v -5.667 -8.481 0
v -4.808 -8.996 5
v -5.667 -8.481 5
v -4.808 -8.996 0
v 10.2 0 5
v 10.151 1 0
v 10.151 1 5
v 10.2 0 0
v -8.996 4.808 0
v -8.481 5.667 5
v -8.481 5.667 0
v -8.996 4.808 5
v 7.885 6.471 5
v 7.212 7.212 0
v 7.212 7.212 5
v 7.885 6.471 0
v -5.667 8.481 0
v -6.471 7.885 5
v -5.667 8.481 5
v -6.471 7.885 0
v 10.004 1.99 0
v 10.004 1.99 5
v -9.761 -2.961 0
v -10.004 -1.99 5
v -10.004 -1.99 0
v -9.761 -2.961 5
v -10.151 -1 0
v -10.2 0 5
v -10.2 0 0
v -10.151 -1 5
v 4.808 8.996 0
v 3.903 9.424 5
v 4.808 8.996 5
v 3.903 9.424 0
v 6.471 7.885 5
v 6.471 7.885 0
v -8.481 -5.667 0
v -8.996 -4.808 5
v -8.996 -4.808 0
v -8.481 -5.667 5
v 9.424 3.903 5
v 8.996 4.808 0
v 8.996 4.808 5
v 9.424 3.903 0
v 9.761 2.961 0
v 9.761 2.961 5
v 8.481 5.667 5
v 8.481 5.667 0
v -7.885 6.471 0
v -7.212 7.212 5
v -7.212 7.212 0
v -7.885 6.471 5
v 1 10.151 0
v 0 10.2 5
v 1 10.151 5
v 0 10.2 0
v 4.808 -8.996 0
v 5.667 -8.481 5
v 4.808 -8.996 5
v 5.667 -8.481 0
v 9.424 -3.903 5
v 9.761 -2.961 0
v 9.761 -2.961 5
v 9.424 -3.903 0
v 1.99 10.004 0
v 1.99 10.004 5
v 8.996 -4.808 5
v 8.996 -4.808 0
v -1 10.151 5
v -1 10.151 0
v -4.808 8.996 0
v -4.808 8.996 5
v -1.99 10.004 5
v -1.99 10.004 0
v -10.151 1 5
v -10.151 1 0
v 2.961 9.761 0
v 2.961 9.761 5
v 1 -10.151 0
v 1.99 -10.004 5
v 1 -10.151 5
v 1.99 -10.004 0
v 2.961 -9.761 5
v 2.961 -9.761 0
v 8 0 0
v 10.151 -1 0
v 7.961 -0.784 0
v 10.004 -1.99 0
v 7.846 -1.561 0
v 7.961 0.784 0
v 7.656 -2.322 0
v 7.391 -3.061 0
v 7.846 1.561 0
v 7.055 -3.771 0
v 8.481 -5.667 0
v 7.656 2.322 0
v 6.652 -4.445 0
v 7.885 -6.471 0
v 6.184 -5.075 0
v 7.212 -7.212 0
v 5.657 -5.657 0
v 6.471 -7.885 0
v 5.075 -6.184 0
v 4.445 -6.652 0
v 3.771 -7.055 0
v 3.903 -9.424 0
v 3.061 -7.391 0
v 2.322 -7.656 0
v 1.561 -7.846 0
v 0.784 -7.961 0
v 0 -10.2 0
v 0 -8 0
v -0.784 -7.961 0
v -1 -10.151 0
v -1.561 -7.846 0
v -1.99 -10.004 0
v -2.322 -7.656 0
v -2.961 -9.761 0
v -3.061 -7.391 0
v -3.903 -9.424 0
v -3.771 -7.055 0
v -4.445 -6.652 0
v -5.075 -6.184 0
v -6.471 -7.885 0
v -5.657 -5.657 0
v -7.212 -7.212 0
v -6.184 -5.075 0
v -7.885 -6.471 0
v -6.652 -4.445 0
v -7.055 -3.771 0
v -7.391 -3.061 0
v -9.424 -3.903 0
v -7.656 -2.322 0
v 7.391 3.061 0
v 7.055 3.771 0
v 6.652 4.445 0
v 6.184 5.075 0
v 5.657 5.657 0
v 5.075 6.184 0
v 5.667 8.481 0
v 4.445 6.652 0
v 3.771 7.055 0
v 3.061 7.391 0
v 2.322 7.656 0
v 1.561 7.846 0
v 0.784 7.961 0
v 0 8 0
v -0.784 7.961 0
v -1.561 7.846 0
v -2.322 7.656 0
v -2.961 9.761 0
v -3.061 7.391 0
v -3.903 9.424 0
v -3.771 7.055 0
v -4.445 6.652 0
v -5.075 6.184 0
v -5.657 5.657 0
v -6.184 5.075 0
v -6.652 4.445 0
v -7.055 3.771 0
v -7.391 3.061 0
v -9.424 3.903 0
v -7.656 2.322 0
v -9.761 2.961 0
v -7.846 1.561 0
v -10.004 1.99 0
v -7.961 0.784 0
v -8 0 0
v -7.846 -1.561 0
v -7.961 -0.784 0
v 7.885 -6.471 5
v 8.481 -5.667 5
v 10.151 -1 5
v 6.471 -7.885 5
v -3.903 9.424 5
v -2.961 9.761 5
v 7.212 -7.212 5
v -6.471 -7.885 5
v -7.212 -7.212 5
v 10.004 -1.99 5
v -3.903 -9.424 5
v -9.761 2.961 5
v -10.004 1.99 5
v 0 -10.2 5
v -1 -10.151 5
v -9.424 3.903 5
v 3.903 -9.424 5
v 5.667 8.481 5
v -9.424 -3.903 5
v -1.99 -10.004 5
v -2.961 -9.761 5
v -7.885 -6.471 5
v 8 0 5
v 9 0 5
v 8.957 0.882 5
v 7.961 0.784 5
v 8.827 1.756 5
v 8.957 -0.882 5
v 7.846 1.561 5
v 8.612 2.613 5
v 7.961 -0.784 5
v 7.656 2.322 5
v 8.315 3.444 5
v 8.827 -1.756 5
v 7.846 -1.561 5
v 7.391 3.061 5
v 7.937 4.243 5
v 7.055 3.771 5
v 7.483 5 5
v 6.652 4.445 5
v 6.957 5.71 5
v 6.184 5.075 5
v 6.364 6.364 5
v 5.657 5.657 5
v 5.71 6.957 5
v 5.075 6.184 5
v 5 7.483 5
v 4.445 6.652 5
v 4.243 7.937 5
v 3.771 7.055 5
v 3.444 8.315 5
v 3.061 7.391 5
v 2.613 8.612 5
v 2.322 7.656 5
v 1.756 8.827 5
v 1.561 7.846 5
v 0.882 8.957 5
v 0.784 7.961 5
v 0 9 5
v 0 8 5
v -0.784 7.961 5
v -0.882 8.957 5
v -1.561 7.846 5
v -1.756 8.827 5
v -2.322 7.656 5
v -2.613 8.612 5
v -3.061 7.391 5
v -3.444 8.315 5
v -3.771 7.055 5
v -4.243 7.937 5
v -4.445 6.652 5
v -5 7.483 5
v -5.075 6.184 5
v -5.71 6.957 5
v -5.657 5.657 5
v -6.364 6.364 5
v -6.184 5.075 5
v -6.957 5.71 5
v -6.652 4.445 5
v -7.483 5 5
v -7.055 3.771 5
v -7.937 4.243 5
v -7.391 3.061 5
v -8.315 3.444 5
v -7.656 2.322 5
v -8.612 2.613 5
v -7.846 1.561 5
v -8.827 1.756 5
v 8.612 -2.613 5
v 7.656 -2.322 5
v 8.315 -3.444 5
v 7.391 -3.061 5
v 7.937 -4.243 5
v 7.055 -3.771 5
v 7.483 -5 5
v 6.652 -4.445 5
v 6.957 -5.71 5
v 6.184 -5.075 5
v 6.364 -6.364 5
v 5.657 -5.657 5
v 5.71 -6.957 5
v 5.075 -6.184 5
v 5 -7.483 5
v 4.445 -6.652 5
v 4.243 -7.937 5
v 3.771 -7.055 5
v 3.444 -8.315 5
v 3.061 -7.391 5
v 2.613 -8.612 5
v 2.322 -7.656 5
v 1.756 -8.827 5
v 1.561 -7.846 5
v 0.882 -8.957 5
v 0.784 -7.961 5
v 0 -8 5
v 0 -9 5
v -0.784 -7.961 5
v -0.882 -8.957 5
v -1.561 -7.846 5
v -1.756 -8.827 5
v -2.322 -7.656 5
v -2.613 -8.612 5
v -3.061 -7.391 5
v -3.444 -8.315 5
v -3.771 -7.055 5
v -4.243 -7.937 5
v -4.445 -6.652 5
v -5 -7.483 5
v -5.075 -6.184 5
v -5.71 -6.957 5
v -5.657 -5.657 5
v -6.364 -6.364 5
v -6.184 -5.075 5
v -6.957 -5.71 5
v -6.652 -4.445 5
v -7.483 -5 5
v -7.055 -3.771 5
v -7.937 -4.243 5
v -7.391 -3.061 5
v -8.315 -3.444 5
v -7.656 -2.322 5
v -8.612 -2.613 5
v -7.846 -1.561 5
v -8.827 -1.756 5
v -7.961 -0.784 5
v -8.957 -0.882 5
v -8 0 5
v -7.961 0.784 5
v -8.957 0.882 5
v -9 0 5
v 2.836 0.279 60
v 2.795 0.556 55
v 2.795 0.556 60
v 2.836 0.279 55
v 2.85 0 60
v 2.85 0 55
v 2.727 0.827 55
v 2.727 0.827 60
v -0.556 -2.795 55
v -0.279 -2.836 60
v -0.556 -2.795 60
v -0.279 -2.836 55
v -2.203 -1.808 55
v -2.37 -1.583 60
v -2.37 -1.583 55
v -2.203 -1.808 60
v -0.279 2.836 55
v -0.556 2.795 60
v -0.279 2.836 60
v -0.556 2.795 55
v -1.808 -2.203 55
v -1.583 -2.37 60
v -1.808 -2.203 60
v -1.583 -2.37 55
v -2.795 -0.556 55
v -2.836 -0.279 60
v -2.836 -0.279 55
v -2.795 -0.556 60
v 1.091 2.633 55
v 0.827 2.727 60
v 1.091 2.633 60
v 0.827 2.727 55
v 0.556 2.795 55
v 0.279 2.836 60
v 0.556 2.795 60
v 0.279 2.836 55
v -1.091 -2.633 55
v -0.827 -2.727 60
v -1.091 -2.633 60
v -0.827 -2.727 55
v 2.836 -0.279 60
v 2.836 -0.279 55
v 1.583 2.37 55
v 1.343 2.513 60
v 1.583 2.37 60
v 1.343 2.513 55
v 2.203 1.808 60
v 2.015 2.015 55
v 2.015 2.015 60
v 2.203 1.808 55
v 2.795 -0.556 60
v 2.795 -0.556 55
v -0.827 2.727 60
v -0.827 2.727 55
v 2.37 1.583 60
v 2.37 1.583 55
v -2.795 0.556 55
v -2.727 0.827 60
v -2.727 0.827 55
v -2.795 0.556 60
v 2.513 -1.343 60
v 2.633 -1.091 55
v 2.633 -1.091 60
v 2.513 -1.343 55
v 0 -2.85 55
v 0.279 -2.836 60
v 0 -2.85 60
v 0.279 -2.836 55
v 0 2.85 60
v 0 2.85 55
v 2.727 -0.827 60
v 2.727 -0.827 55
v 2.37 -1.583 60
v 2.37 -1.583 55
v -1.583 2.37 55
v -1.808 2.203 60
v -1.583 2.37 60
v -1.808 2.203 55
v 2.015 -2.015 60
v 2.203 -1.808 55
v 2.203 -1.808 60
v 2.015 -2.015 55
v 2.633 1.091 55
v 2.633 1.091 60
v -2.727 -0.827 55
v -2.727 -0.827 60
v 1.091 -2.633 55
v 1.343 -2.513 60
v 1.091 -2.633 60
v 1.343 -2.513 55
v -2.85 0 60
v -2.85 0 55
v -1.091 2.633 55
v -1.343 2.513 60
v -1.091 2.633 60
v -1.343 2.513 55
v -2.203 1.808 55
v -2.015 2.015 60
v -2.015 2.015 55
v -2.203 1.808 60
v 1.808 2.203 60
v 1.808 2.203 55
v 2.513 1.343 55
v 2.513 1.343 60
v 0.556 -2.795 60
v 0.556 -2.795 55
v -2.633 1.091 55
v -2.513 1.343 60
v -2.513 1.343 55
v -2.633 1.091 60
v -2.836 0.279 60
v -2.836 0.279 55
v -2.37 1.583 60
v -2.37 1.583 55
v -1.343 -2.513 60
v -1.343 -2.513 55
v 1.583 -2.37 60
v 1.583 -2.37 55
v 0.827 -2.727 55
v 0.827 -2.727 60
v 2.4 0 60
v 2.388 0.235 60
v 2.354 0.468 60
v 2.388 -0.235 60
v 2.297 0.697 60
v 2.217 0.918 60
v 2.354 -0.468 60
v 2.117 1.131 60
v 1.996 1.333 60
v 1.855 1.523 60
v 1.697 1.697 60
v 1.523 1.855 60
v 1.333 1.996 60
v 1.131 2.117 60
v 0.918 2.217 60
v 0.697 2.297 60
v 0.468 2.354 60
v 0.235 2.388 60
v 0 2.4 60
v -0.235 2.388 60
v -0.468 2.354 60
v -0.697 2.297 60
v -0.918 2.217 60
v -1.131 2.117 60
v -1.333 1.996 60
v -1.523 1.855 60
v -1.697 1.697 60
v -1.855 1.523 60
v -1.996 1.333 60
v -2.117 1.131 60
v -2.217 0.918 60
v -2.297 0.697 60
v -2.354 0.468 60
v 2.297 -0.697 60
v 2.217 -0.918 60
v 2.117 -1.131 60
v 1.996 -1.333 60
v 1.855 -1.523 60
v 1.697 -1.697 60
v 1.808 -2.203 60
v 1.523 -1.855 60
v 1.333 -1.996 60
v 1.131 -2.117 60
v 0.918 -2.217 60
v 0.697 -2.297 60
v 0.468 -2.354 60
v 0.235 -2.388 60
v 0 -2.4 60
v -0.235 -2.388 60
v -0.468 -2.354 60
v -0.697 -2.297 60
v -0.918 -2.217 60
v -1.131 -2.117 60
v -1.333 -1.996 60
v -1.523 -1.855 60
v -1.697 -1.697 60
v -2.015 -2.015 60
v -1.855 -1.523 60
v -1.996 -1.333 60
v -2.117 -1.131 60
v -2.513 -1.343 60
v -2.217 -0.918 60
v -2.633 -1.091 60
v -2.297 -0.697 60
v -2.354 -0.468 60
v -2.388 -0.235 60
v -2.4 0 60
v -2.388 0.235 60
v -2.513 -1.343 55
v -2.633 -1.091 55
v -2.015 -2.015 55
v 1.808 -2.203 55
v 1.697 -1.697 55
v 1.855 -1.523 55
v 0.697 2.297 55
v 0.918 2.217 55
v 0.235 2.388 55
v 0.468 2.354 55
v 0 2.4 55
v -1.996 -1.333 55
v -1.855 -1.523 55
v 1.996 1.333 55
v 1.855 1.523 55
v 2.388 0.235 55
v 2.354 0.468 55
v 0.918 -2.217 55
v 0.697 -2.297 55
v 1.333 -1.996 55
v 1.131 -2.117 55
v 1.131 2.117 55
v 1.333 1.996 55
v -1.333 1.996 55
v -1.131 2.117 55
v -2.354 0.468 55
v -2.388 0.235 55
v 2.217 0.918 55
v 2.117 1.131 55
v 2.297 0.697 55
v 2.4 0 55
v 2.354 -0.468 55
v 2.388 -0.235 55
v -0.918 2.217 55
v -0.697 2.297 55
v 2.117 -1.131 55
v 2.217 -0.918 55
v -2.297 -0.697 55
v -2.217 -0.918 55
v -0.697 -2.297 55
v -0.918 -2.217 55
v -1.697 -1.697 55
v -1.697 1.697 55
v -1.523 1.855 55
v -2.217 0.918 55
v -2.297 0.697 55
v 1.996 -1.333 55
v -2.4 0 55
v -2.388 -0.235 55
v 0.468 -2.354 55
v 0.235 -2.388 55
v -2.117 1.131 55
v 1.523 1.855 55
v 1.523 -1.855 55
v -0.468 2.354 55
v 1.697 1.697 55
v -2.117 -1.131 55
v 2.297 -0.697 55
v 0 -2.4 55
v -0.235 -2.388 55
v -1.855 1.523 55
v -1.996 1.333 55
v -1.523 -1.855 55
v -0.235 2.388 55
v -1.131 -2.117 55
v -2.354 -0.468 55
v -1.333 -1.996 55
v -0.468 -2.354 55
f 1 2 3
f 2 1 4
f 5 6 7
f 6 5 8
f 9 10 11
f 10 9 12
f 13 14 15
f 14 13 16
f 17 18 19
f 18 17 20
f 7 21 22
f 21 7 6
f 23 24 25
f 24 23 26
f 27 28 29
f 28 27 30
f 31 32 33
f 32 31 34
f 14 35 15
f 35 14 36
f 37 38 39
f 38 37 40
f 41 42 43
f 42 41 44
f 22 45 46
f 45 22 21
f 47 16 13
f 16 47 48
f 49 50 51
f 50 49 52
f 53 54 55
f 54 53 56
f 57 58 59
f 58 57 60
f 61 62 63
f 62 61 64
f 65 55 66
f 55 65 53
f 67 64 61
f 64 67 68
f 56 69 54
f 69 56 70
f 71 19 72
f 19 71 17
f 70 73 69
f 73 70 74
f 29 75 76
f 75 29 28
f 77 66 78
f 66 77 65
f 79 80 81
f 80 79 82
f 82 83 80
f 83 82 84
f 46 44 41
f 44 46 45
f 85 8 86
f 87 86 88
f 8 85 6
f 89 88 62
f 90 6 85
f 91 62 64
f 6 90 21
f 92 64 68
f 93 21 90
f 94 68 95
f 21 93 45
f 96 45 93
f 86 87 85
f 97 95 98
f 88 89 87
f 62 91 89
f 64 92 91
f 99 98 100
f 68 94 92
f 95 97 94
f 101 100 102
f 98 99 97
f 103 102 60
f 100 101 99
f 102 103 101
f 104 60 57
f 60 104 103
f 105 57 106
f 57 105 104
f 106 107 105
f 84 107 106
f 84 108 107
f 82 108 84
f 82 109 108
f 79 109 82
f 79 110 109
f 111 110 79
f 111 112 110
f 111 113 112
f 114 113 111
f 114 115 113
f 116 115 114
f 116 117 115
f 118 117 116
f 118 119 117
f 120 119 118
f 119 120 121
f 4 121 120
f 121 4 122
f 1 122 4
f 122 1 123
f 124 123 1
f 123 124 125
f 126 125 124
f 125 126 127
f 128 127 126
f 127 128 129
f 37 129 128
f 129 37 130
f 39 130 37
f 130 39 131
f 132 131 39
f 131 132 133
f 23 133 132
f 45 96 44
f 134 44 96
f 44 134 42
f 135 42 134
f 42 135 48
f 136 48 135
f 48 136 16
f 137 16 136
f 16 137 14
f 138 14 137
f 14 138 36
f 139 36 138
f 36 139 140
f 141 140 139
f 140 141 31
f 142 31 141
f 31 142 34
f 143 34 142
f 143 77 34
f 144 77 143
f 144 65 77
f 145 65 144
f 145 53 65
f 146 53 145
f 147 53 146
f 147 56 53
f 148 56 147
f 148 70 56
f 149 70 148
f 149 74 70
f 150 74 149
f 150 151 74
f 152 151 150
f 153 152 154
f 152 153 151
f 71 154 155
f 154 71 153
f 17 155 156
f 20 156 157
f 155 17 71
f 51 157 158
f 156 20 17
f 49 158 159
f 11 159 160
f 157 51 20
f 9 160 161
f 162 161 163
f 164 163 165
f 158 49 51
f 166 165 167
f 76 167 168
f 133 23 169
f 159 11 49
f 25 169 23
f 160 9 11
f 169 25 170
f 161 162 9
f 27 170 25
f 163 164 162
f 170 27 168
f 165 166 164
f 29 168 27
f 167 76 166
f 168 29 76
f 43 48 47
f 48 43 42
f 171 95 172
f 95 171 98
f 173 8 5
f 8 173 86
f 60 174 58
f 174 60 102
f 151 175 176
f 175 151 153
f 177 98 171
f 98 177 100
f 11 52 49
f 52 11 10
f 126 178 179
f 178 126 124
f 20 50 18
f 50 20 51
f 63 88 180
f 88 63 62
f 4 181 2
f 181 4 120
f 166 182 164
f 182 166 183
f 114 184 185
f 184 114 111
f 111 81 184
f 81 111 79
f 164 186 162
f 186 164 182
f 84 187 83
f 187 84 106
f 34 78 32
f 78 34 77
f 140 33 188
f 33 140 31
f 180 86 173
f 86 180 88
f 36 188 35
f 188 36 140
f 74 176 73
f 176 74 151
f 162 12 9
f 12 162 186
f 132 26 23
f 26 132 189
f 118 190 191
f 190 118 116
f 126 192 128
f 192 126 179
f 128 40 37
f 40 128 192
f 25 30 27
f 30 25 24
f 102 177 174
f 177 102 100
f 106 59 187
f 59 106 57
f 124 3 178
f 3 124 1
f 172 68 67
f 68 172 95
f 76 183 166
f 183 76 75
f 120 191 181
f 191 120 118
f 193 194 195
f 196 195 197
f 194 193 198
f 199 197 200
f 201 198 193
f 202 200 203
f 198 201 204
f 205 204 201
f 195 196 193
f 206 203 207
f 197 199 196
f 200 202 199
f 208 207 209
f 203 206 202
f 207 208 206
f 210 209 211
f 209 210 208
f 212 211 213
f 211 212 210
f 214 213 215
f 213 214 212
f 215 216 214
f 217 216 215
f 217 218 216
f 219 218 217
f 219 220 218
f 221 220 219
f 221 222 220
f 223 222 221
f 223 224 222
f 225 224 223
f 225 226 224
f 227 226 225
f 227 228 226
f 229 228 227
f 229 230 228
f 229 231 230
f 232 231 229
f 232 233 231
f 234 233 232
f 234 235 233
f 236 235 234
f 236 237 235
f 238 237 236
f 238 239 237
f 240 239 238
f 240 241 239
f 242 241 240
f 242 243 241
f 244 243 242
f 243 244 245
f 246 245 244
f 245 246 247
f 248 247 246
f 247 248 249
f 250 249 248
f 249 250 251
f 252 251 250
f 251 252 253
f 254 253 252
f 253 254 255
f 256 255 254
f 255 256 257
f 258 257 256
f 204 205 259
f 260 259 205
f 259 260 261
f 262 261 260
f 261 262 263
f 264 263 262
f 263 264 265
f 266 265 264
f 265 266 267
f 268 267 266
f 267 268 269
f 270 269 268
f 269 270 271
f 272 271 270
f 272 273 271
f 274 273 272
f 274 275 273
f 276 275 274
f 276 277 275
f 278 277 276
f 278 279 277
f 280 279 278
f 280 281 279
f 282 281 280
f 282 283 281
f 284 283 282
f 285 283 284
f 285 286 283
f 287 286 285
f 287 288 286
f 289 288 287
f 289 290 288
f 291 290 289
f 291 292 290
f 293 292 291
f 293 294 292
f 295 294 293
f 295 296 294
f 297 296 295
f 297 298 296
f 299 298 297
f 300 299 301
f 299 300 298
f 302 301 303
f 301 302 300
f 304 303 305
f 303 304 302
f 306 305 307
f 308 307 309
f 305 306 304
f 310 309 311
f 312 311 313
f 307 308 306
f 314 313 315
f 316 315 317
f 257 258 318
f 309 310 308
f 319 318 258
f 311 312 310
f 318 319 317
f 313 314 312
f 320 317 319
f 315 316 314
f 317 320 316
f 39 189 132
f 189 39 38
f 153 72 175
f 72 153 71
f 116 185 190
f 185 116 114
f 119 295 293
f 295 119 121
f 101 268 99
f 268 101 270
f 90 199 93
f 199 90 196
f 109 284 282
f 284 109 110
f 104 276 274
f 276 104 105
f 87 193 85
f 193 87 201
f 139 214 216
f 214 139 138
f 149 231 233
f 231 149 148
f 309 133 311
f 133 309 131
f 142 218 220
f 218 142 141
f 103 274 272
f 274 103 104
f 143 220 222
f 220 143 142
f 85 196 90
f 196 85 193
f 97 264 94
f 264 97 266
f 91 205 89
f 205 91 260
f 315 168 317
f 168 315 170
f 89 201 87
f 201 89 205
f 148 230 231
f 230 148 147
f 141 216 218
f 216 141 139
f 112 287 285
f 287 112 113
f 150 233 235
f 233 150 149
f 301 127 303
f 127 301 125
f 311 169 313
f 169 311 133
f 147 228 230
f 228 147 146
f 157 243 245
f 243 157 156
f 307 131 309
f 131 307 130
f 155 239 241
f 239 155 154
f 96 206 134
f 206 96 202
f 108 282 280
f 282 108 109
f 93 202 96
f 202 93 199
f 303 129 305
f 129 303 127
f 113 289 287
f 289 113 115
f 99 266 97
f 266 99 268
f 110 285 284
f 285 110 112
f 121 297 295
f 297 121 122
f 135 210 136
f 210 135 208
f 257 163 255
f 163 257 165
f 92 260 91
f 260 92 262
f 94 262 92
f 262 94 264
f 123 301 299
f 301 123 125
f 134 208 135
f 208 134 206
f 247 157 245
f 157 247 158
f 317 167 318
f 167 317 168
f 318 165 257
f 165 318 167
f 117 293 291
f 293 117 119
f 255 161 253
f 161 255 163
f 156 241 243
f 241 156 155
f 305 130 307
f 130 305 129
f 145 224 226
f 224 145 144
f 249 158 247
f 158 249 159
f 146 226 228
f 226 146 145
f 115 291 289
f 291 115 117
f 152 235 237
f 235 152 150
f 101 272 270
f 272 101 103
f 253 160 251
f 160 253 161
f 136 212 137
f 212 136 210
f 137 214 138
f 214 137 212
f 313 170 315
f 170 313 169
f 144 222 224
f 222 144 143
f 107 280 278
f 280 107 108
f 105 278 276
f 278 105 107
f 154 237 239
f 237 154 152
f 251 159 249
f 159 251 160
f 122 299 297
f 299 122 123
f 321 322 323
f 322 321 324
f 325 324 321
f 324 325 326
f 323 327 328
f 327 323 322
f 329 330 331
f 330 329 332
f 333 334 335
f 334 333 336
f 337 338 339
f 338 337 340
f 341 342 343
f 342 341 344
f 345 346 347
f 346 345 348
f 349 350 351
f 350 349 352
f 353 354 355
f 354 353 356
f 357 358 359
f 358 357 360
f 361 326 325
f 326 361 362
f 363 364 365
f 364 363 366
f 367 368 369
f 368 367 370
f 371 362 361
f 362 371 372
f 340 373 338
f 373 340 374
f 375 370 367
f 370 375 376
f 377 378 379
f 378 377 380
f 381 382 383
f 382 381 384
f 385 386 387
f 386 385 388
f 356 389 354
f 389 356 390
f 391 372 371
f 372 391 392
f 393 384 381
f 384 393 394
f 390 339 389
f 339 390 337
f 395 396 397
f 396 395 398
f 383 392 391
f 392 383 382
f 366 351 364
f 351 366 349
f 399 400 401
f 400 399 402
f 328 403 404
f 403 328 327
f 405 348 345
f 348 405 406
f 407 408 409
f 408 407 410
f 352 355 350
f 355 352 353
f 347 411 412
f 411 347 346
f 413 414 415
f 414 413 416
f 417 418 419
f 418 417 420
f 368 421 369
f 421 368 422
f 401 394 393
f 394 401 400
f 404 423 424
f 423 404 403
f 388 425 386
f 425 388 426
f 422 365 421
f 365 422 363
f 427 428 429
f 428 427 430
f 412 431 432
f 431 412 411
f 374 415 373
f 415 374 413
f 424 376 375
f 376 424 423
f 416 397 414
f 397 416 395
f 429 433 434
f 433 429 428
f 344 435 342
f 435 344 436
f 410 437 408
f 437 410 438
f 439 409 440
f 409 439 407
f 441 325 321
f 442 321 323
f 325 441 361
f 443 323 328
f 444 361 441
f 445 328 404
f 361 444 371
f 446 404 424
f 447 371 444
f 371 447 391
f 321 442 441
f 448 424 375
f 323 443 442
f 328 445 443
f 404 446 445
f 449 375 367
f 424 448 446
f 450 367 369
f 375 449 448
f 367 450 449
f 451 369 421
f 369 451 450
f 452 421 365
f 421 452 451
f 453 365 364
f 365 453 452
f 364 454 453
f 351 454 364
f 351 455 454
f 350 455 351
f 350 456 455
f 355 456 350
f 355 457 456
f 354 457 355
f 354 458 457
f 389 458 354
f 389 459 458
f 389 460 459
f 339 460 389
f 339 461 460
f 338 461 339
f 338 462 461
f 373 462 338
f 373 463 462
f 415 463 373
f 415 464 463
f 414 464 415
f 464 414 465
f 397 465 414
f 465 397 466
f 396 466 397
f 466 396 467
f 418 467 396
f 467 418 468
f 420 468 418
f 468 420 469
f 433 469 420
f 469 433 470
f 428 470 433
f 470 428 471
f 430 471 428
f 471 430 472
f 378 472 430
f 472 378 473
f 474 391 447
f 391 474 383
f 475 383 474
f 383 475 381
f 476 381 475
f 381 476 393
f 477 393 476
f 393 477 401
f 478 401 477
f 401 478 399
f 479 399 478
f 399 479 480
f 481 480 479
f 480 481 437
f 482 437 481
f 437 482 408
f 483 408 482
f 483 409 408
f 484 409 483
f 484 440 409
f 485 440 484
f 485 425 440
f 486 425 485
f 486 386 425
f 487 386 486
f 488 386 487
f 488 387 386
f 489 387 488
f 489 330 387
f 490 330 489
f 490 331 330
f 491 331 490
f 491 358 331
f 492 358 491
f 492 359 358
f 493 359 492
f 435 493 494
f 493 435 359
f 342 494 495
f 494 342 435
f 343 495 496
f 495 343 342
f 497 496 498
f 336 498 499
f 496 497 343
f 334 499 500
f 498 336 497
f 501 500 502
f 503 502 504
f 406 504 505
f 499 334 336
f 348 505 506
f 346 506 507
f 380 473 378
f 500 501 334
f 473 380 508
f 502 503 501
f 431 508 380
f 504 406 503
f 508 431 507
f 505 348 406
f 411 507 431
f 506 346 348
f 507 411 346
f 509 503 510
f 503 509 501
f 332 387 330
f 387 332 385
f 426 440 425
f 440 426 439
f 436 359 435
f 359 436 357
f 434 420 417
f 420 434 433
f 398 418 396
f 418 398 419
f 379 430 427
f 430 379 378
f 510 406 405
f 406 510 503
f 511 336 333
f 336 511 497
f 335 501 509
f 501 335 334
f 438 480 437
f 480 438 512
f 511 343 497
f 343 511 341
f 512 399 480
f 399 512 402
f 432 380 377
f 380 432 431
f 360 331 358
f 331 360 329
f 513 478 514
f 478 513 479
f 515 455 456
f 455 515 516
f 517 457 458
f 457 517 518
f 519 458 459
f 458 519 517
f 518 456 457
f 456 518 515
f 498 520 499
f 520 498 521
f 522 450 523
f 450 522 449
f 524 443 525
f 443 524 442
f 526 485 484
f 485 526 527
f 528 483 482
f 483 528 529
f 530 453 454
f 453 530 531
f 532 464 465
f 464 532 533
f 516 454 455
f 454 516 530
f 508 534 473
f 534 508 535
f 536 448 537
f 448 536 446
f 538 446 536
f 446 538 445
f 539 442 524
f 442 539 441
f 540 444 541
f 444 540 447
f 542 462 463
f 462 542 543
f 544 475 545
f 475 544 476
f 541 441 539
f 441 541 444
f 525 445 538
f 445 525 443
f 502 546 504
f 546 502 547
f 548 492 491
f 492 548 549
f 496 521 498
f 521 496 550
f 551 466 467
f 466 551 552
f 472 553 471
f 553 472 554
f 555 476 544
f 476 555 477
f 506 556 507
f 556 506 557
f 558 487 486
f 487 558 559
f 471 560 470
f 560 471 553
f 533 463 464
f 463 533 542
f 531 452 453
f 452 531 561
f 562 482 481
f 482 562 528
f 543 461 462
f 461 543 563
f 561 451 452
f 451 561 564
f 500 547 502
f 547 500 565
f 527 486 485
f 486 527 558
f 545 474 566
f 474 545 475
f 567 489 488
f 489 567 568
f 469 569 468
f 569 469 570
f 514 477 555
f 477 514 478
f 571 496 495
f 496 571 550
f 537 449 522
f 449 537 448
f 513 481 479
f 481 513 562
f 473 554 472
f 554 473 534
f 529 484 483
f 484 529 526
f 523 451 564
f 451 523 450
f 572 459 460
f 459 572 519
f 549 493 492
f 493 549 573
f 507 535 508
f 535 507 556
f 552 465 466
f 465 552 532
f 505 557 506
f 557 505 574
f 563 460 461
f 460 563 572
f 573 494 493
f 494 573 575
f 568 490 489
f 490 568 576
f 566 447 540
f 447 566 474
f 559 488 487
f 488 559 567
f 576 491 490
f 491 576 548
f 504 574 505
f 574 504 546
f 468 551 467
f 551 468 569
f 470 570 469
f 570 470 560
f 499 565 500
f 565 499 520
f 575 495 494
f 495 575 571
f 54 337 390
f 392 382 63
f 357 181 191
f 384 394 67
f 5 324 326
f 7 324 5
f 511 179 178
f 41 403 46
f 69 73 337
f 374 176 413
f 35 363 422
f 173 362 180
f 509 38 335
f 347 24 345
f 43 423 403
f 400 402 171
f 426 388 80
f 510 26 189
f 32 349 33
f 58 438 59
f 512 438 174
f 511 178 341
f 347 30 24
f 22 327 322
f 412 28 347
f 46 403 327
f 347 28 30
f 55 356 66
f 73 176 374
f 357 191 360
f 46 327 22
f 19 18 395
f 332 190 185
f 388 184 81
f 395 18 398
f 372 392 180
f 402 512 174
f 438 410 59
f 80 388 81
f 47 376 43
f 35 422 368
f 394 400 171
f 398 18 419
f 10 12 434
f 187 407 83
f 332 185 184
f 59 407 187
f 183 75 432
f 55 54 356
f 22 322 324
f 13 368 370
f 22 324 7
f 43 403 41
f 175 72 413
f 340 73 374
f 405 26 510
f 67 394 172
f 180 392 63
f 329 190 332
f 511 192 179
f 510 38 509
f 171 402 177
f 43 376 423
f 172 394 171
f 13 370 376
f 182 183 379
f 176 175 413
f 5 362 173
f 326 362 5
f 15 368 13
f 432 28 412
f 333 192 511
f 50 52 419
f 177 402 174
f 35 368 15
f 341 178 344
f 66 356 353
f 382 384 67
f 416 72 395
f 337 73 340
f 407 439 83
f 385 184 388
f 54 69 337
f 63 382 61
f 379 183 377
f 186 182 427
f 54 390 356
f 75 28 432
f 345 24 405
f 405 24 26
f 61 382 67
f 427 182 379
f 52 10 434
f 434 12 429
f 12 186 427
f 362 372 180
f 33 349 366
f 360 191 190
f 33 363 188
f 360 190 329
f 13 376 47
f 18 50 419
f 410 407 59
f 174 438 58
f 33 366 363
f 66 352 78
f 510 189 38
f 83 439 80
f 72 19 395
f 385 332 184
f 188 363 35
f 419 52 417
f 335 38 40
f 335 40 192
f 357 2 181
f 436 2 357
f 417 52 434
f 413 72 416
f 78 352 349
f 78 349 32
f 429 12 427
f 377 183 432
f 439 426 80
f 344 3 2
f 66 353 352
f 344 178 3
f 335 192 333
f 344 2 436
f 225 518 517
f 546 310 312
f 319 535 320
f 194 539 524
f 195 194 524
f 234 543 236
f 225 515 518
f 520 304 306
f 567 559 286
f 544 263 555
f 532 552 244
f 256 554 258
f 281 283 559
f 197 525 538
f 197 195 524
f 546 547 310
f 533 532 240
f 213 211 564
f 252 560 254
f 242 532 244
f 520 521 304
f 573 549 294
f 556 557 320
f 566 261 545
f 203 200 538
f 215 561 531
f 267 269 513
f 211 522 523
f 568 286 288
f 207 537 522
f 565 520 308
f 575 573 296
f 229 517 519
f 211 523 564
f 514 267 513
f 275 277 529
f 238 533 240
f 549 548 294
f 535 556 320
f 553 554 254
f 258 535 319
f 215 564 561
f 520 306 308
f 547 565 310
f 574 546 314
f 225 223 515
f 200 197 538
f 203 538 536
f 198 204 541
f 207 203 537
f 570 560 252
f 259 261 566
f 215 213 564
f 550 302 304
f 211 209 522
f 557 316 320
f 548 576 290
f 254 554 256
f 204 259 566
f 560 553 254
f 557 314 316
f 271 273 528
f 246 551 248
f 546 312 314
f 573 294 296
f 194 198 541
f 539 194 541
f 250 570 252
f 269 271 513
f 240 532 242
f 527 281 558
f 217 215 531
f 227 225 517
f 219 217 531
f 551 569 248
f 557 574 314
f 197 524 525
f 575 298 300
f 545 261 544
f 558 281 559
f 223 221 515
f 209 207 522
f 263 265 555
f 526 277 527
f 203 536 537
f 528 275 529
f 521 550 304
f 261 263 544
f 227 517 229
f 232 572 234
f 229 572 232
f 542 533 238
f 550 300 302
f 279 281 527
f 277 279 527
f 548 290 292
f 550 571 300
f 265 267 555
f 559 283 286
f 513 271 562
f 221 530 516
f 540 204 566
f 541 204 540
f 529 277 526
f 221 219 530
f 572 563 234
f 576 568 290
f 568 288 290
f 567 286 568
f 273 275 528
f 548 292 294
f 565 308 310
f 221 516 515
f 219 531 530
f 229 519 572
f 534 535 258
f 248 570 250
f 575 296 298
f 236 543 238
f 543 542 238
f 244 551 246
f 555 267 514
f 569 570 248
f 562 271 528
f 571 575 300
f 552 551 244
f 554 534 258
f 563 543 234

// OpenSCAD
difference() {
    cylinder(h = 5, d = 20.4, $fn = 64);
    
    cylinder(h = 5, d = 16, $fn = 64);
}

translate([0, 0, 5])
difference() {
    cylinder(h = 50, d1 = 20.4, d2 = 5.7, $fn = 64);
    cylinder(h = 50, d1 = 18, d2 = 5.7-0.45*2, $fn = 64);
}

translate([0, 0, 55])
difference() {
    cylinder(h = 5, d = 5.7, $fn = 64);
    cylinder(h = 5, d = 5.7-0.45*2, $fn = 64);
}
